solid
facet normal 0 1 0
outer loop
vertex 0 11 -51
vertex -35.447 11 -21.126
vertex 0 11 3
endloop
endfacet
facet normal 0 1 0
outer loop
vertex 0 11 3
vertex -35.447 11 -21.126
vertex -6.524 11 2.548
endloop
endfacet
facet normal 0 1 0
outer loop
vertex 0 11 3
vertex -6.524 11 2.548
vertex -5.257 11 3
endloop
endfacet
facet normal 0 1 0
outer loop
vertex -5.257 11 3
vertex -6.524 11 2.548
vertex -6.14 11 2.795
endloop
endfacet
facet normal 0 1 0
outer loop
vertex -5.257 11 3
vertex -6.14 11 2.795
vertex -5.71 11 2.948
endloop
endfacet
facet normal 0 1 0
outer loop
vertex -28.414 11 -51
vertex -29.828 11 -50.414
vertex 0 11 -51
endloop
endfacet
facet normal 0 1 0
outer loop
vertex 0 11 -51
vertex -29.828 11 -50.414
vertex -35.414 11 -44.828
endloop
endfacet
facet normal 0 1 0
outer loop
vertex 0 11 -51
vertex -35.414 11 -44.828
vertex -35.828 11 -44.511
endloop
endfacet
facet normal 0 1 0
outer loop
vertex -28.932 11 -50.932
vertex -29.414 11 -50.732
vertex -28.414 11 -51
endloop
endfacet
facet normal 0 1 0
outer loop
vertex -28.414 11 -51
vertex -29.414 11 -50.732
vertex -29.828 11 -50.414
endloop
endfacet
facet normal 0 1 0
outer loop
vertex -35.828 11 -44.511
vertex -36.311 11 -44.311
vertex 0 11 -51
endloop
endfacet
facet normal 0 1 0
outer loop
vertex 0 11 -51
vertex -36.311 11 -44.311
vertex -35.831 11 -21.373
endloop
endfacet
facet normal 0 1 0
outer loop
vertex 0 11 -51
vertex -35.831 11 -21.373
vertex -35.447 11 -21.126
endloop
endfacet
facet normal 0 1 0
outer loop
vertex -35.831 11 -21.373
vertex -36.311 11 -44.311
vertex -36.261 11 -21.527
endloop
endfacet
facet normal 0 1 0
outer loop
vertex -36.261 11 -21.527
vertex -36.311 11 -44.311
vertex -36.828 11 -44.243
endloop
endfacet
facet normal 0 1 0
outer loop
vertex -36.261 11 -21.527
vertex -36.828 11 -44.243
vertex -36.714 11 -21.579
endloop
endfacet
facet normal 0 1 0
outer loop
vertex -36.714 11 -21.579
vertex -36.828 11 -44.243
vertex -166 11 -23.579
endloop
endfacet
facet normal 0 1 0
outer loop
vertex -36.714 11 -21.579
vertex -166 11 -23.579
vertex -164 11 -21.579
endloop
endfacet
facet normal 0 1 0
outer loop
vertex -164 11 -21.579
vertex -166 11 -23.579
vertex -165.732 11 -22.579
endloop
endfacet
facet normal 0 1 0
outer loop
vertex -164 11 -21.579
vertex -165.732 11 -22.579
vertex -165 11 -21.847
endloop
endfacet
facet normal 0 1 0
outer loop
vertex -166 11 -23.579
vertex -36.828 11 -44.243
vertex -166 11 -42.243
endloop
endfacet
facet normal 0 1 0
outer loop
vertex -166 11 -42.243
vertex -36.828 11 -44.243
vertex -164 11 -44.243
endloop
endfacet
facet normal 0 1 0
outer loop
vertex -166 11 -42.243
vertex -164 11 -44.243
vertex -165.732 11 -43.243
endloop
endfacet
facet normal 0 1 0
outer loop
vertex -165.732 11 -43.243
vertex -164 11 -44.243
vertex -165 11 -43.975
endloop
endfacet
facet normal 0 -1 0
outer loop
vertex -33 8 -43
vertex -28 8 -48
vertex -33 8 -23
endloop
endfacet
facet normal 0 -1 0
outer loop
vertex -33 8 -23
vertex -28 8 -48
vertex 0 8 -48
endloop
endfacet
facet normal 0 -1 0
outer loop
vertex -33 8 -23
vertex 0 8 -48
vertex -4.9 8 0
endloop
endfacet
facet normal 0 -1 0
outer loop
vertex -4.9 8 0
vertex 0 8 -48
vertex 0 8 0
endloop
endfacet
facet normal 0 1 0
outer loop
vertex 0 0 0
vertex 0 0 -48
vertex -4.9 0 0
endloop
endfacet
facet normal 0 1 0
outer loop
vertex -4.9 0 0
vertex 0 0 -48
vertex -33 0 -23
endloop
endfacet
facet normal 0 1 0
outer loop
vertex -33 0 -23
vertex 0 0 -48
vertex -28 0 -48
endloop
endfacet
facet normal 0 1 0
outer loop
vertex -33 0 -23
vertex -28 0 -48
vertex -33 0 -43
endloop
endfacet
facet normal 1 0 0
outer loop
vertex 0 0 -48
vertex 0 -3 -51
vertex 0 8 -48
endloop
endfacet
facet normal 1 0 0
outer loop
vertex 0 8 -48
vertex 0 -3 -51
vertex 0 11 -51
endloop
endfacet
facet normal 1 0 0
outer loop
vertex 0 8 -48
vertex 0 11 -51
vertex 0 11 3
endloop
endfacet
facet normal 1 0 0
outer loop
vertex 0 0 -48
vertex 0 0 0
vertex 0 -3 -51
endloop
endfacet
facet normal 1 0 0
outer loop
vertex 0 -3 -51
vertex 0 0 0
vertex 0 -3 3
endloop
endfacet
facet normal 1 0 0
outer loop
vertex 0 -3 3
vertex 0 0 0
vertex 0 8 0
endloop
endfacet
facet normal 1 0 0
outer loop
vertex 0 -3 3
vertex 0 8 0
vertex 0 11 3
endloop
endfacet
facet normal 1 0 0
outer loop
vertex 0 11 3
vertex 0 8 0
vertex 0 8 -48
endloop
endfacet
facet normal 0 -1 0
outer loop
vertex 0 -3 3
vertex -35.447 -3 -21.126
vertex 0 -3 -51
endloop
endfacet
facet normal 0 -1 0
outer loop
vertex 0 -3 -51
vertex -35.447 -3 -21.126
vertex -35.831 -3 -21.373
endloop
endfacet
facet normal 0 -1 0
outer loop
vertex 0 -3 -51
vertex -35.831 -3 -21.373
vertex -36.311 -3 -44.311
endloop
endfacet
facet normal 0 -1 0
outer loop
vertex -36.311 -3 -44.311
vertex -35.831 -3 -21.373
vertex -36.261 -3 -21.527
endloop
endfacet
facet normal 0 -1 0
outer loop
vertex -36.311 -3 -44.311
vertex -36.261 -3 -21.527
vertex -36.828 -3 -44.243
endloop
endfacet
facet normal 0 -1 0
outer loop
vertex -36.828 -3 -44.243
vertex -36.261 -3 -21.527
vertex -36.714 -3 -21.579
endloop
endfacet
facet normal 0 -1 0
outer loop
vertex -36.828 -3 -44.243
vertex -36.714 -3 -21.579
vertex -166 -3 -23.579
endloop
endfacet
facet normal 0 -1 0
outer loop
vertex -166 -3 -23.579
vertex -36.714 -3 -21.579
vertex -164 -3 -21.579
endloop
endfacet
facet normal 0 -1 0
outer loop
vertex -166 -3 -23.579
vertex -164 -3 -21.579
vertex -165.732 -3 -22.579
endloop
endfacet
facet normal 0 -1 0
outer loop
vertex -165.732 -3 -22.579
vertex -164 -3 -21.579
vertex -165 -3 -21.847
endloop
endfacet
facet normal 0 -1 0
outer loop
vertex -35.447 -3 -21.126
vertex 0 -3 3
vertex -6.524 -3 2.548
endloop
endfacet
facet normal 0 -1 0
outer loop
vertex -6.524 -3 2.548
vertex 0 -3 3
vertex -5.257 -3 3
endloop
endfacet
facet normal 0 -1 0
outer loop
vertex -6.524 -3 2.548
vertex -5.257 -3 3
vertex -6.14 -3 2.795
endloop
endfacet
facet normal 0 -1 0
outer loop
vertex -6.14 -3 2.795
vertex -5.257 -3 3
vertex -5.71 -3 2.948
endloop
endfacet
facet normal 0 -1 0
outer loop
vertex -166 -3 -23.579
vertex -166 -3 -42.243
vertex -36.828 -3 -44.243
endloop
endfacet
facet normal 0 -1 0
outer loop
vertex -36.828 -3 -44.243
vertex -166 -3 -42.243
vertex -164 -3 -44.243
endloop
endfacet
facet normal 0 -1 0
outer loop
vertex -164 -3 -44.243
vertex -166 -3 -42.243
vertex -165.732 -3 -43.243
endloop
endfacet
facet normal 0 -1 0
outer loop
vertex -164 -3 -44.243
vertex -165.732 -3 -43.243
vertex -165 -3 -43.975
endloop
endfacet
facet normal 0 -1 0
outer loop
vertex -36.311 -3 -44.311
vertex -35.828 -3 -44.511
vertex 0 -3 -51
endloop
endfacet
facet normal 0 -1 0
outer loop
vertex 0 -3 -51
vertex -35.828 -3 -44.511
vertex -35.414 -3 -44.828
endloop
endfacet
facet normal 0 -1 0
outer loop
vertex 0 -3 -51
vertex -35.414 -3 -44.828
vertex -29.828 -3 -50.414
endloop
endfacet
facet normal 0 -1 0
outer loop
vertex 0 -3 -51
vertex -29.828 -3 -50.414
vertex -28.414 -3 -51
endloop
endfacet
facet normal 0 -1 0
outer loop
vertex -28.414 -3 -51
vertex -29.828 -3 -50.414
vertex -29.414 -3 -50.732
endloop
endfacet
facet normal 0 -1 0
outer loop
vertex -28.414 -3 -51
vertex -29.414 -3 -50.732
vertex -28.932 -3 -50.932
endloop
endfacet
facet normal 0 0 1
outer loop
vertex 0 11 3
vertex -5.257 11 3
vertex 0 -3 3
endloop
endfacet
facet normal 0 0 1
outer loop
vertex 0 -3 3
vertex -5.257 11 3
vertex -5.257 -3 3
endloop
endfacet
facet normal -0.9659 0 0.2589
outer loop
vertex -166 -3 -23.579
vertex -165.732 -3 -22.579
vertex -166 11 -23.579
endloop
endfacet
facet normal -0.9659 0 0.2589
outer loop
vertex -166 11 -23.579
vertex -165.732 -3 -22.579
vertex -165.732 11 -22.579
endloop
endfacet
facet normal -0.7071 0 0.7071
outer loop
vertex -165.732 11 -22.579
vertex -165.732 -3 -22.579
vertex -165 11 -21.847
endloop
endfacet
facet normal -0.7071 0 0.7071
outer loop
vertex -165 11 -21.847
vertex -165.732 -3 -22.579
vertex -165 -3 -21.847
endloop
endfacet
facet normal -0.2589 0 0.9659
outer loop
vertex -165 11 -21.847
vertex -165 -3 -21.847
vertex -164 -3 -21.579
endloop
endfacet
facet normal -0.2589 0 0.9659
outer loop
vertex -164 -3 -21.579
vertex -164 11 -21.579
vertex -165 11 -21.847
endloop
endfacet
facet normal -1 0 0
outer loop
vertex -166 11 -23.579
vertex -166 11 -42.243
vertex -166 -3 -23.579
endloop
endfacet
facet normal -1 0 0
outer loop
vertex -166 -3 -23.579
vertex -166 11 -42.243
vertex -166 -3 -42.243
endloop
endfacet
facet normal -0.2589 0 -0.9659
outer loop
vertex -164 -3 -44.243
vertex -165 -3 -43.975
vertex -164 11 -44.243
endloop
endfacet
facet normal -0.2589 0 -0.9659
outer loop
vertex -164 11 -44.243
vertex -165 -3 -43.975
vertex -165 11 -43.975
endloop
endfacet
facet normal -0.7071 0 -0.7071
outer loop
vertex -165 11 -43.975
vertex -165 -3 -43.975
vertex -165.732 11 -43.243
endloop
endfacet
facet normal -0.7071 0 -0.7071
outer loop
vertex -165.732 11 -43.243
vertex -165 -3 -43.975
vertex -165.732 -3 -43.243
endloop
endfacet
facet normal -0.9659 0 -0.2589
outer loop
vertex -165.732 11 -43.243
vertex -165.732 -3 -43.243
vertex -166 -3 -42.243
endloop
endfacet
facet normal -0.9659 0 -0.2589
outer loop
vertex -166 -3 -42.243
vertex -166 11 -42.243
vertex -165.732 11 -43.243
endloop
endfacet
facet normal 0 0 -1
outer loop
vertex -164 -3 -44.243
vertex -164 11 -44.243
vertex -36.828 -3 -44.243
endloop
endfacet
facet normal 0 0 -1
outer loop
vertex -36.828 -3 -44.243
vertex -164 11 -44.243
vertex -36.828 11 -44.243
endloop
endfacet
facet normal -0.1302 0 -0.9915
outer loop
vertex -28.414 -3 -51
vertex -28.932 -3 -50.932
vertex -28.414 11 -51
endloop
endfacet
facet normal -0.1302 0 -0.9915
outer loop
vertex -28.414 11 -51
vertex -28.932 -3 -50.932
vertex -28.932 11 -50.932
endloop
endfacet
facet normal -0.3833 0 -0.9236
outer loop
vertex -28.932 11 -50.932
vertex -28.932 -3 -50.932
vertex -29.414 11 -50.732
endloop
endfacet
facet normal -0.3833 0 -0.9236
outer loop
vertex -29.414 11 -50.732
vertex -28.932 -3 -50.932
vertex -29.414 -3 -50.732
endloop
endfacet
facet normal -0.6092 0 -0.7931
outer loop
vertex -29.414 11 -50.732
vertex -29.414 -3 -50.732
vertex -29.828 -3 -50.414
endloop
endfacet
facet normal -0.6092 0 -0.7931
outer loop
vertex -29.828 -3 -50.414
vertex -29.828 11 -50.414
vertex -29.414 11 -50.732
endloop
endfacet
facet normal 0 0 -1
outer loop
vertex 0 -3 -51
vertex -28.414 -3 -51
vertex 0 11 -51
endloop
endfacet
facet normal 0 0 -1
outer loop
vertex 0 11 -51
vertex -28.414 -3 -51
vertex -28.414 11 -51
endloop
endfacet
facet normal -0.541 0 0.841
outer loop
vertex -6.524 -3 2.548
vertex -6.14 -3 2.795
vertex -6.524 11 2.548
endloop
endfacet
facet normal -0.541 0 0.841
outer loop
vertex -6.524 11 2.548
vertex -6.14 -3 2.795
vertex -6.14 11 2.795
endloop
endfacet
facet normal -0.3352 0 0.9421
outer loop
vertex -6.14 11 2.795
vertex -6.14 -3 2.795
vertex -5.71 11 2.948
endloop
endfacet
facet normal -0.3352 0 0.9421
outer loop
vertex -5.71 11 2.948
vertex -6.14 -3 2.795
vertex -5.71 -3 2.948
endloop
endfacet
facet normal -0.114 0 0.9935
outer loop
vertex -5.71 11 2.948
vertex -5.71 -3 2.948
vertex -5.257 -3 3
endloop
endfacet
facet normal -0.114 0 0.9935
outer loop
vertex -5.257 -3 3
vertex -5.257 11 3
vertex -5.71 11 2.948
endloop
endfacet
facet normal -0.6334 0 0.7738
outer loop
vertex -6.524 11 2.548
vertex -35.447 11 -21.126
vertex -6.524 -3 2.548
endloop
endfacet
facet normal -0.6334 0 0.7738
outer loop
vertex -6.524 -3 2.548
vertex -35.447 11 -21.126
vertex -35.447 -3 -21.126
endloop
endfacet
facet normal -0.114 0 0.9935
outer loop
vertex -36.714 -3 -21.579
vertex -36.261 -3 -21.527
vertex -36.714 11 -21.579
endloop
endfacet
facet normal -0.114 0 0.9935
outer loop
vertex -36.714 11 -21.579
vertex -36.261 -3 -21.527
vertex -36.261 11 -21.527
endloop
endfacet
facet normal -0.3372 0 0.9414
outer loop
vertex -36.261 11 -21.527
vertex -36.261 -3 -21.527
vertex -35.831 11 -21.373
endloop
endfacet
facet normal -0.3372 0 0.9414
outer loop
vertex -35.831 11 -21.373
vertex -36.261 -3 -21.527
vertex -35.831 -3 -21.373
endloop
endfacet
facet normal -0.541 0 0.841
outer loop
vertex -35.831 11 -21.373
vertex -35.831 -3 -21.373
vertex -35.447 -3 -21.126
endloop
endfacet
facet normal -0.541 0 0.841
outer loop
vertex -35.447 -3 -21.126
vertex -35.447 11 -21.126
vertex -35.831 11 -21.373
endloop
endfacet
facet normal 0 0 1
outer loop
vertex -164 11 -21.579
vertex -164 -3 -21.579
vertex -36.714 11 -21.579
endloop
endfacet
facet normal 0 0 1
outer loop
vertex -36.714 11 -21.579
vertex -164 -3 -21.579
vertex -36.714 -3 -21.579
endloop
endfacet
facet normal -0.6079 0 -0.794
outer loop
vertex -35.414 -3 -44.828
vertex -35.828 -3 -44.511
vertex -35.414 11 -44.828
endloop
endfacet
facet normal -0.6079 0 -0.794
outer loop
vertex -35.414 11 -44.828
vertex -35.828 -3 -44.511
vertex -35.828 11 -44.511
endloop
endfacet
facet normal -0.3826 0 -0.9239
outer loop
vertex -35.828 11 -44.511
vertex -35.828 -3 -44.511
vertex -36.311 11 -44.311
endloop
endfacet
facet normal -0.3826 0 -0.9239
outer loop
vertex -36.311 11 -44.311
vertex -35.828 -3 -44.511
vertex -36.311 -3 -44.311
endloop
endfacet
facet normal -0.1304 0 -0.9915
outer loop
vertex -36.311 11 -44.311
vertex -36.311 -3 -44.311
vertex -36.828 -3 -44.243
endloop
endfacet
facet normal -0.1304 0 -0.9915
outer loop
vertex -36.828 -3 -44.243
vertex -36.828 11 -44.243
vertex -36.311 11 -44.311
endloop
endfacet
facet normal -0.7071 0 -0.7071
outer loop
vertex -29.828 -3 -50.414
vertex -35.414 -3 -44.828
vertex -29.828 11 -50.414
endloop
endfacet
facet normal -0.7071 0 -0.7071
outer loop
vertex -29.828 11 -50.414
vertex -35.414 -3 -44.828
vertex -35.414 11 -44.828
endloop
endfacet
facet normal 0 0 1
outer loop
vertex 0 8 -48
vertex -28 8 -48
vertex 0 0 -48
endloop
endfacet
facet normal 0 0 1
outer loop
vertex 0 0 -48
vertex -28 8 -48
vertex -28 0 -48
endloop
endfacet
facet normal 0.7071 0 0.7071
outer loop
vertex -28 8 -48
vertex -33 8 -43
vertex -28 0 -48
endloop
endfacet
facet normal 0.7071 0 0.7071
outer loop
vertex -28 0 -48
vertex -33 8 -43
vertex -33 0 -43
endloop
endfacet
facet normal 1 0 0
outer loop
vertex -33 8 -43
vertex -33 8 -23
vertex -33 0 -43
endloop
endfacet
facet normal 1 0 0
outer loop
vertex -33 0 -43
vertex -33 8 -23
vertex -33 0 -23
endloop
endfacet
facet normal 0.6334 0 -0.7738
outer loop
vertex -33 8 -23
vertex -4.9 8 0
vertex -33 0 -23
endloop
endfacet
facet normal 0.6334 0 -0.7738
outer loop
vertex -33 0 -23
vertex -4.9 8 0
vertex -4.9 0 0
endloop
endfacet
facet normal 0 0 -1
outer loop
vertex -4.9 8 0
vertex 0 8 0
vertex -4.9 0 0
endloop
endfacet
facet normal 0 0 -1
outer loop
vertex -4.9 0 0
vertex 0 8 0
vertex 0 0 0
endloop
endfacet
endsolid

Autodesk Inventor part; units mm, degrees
ref_plane "YZ Plane" through (0, 0, 0) normal (1, 0, 0) x (0, 1, 0)
ref_plane "XZ Plane" through (0, 0, 0) normal (0, 1, 0) x (-1, 0, 0)
ref_plane "XY Plane" through (0, 0, 0) normal (0, 0, 1) x (1, 0, 0)
sketch "Sketch1" plane through (0, 0, 0) normal (0, 1, 0) x (-1, 0, 0)
  line L0 (0, 0) -> (0, -48)
  line L1 (0, 0) -> (4.9, 0)
  line L2 (0, -24) -> (33, -24) construction
  line L3 (0, -48) -> (33, -48) construction
  line L4 (33, -48) -> (33, -43) construction
  line L5 (33, -48) -> (28, -48) construction
  line L6 (0, -48) -> (28, -48)
  line L7 (28, -48) -> (33, -43)
  line L8 (33, -43) -> (33, -23)
  line L9 (4.9, 0) -> (33, -23)
  dimension "d0" = 48
  dimension "d1" = 4.9
  dimension "d2" = 33
  dimension "d3" = 5
  dimension "d4" = 5
  dimension "d5" = 20
extrude "Extrusion1" add sketch "Sketch1" along normal blind 1
sketch "Sketch2" plane through (0, 1, 0) normal (0, 1, 0) x (1, 0, 0)
  line L0 (0, 0) -> (0, 48) projected
  line L1 (0, 48) -> (-28, 48) projected
  line L2 (-28, 48) -> (-33, 43) projected
  line L3 (-33, 43) -> (-33, 23) projected
  line L4 (-33, 23) -> (-4.9, 0) projected
  line L5 (-4.9, 0) -> (0, 0) projected
  line L6 (-5.9712, -3) -> (-36, 21.5787)
  line L7 (-36, 21.5787) -> (-36, 44.2426)
  line L8 (-36, 44.2426) -> (-29.2426, 51)
  line L9 (-29.2426, 51) -> (3, 51)
  line L10 (3, 51) -> (3, -3)
  line L11 (3, -3) -> (-5.9712, -3)
  dimension "d8" = 3
extrude "Extrusion2" add sketch "Sketch2" along normal blind 3 contours L5 L4 L3 L2 L1 L0 | L6 L7 L8 L9 L10 L11
sketch "Sketch3" plane through (0, 0, 0) normal (0, -1, 0) x (1, 0, 0)
  line L0 (0, 0) -> (0, -48) projected
  line L1 (-4.9, 0) -> (0, 0) projected
  line L2 (-33, -23) -> (-4.9, 0) projected
  line L3 (-33, -43) -> (-33, -23) projected
  line L4 (-28, -48) -> (-33, -43) projected
  line L5 (0, -48) -> (-28, -48) projected
  line L6 (3, -51) -> (3, 3)
  line L7 (3, 3) -> (-5.9712, 3)
  line L8 (-5.9712, 3) -> (-36, -21.5787)
  line L9 (-36, -21.5787) -> (-36, -44.2426)
  line L10 (-36, -44.2426) -> (-29.2426, -51)
  line L11 (-29.2426, -51) -> (3, -51)
  dimension "d11" = 3
extrude "Extrusion3" add sketch "Sketch3" along normal blind 3 contours L0 L5 L4 L3 L2 L1 | L11 L10 L9 L8 L7 L6
sketch "Sketch4" plane through (0, 0, 0) normal (0, 1, 0) x (1, 0, 0)
  line L0 (3, 51) -> (3, -3) projected
  line L1 (-29.2426, 51) -> (3, 51) projected
  line L2 (-36, 44.2426) -> (-29.2426, 51) projected
  line L3 (-36, 21.5787) -> (-36, 44.2426) projected
  line L4 (-5.9712, -3) -> (-36, 21.5787) projected
  line L5 (3, -3) -> (-5.9712, -3) projected
  line L6 (-4.9, 0) -> (0, 0) projected
  line L7 (-33, 23) -> (-4.9, 0) projected
  line L8 (-33, 43) -> (-33, 23) projected
  line L9 (-28, 48) -> (-33, 43) projected
  line L10 (0, 48) -> (-28, 48) projected
  line L11 (0, 0) -> (0, 48) projected
  line L12 (0, 0) -> (0, 48) projected
  line L13 (0, 48) -> (0, 51)
  line L14 (0, 0) -> (0, -3)
  line L15 (3, -3) -> (-5.9712, -3) projected
extrude "Extrusion4" add sketch "Sketch4" along normal blind 8 contours L13 L10 L9 L8 L7 L6 L14 L5 L4 L3 L2 L1
sketch "Sketch5" plane through (-36, 4, -44.2426) normal (-1, 0, 0) x (0, 0, 1)
  line L0 (0, 4) -> (0, -7) projected
  line L1 (22.6639, -7) -> (0, -7) projected
  line L2 (22.6639, 4) -> (22.6639, -7) projected
  line L3 (0, 4) -> (22.6639, 4) projected
  point P0 (44.2426, -4)
extrude "Extrusion5" add sketch "Sketch5" along normal blind 130
fillet "Fillet1" radius 2 6 edges at (-36, 2.5, -44.2426) (-36, 2.5, -21.5787) (-5.9712, 2.5, 3) (-29.2426, 2.5, -51) (-166, 2.5, -44.2426) (-166, 2.5, -21.5787)
sketch "Sketch6" plane through (0, 0, 0) normal (0, 1, 0) x (1, 0, 0)
  line L0 (0, -3) -> (0, 51) projected
  line L1 (3, -3) -> (0, -3) projected
  line L2 (3, 51) -> (3, -3) projected
  line L3 (0, 51) -> (3, 51) projected
  point P0 (0, 0)
extrude "Extrusion6" cut sketch "Sketch6" along normal blind 130 and the other way blind 65
sketch "Sketch7" plane through (0, 4, 0) normal (0, 1, 0) x (1, 0, 0)
  line L0 (0, 0) -> (0, 48) projected
  line L1 (0, 48) -> (-28, 48) projected
  line L2 (-28, 48) -> (-33, 43) projected
  line L3 (-33, 43) -> (-33, 23) projected
  line L4 (-33, 23) -> (-4.9, 0) projected
  line L5 (-4.9, 0) -> (0, 0) projected
extrude "Extrusion7" cut sketch "Sketch7" against normal blind 4
sketch "Sketch8" plane through (0, -3, 3) normal (1, 0, 0) x (0, 0, -1)
  point P0 (3, 3)
sketch "Sketch9" plane through (0, 8, 0) normal (0, 1, 0) x (1, 0, 0)
  line L0 (0, 48) -> (0, 0) projected
  line L1 (-28, 48) -> (0, 48) projected
  line L2 (-33, 43) -> (-28, 48) projected
  line L3 (-33, 23) -> (-33, 43) projected
  line L4 (-4.9, 0) -> (-33, 23) projected
  line L5 (0, 0) -> (-4.9, 0) projected
  arc A0 (-166, 23.5787) -> (-164, 21.5787) centre (-164, 23.5787) ccw projected
  line L6 (-36.7141, 21.5787) -> (-164, 21.5787) projected
  arc A1 (-35.4474, 21.1264) -> (-36.7141, 21.5787) centre (-36.7141, 19.5787) ccw projected
  line L7 (-35.4474, 21.1264) -> (-6.5238, -2.5477) projected
  arc A2 (-6.5238, -2.5477) -> (-5.2571, -3) centre (-5.2571, -1) ccw projected
  line L8 (-5.2571, -3) -> (0, -3) projected
  line L9 (0, -3) -> (0, 0) projected
  line L10 (0, 0) -> (-4.9, 0) projected
  line L11 (-4.9, 0) -> (-33, 23) projected
  line L12 (-33, 23) -> (-33, 43) projected
  line L13 (-33, 43) -> (-28, 48) projected
  line L14 (-28, 48) -> (0, 48) projected
  line L15 (0, 48) -> (0, 51) projected
  line L16 (0, 51) -> (-28.4142, 51) projected
  arc A3 (-28.4142, 51) -> (-29.8284, 50.4142) centre (-28.4142, 49) ccw projected
  line L17 (-29.8284, 50.4142) -> (-35.4142, 44.8284) projected
  arc A4 (-36.8284, 44.2426) -> (-35.4142, 44.8284) centre (-36.8284, 46.2426) ccw projected
  line L18 (-36.8284, 44.2426) -> (-164, 44.2426) projected
  arc A5 (-164, 44.2426) -> (-166, 42.2426) centre (-164, 42.2426) ccw projected
  line L19 (-166, 23.5787) -> (-166, 42.2426) projected
extrude "Extrusion8" add sketch "Sketch9" along normal blind 3
properties part number "PATAS"
